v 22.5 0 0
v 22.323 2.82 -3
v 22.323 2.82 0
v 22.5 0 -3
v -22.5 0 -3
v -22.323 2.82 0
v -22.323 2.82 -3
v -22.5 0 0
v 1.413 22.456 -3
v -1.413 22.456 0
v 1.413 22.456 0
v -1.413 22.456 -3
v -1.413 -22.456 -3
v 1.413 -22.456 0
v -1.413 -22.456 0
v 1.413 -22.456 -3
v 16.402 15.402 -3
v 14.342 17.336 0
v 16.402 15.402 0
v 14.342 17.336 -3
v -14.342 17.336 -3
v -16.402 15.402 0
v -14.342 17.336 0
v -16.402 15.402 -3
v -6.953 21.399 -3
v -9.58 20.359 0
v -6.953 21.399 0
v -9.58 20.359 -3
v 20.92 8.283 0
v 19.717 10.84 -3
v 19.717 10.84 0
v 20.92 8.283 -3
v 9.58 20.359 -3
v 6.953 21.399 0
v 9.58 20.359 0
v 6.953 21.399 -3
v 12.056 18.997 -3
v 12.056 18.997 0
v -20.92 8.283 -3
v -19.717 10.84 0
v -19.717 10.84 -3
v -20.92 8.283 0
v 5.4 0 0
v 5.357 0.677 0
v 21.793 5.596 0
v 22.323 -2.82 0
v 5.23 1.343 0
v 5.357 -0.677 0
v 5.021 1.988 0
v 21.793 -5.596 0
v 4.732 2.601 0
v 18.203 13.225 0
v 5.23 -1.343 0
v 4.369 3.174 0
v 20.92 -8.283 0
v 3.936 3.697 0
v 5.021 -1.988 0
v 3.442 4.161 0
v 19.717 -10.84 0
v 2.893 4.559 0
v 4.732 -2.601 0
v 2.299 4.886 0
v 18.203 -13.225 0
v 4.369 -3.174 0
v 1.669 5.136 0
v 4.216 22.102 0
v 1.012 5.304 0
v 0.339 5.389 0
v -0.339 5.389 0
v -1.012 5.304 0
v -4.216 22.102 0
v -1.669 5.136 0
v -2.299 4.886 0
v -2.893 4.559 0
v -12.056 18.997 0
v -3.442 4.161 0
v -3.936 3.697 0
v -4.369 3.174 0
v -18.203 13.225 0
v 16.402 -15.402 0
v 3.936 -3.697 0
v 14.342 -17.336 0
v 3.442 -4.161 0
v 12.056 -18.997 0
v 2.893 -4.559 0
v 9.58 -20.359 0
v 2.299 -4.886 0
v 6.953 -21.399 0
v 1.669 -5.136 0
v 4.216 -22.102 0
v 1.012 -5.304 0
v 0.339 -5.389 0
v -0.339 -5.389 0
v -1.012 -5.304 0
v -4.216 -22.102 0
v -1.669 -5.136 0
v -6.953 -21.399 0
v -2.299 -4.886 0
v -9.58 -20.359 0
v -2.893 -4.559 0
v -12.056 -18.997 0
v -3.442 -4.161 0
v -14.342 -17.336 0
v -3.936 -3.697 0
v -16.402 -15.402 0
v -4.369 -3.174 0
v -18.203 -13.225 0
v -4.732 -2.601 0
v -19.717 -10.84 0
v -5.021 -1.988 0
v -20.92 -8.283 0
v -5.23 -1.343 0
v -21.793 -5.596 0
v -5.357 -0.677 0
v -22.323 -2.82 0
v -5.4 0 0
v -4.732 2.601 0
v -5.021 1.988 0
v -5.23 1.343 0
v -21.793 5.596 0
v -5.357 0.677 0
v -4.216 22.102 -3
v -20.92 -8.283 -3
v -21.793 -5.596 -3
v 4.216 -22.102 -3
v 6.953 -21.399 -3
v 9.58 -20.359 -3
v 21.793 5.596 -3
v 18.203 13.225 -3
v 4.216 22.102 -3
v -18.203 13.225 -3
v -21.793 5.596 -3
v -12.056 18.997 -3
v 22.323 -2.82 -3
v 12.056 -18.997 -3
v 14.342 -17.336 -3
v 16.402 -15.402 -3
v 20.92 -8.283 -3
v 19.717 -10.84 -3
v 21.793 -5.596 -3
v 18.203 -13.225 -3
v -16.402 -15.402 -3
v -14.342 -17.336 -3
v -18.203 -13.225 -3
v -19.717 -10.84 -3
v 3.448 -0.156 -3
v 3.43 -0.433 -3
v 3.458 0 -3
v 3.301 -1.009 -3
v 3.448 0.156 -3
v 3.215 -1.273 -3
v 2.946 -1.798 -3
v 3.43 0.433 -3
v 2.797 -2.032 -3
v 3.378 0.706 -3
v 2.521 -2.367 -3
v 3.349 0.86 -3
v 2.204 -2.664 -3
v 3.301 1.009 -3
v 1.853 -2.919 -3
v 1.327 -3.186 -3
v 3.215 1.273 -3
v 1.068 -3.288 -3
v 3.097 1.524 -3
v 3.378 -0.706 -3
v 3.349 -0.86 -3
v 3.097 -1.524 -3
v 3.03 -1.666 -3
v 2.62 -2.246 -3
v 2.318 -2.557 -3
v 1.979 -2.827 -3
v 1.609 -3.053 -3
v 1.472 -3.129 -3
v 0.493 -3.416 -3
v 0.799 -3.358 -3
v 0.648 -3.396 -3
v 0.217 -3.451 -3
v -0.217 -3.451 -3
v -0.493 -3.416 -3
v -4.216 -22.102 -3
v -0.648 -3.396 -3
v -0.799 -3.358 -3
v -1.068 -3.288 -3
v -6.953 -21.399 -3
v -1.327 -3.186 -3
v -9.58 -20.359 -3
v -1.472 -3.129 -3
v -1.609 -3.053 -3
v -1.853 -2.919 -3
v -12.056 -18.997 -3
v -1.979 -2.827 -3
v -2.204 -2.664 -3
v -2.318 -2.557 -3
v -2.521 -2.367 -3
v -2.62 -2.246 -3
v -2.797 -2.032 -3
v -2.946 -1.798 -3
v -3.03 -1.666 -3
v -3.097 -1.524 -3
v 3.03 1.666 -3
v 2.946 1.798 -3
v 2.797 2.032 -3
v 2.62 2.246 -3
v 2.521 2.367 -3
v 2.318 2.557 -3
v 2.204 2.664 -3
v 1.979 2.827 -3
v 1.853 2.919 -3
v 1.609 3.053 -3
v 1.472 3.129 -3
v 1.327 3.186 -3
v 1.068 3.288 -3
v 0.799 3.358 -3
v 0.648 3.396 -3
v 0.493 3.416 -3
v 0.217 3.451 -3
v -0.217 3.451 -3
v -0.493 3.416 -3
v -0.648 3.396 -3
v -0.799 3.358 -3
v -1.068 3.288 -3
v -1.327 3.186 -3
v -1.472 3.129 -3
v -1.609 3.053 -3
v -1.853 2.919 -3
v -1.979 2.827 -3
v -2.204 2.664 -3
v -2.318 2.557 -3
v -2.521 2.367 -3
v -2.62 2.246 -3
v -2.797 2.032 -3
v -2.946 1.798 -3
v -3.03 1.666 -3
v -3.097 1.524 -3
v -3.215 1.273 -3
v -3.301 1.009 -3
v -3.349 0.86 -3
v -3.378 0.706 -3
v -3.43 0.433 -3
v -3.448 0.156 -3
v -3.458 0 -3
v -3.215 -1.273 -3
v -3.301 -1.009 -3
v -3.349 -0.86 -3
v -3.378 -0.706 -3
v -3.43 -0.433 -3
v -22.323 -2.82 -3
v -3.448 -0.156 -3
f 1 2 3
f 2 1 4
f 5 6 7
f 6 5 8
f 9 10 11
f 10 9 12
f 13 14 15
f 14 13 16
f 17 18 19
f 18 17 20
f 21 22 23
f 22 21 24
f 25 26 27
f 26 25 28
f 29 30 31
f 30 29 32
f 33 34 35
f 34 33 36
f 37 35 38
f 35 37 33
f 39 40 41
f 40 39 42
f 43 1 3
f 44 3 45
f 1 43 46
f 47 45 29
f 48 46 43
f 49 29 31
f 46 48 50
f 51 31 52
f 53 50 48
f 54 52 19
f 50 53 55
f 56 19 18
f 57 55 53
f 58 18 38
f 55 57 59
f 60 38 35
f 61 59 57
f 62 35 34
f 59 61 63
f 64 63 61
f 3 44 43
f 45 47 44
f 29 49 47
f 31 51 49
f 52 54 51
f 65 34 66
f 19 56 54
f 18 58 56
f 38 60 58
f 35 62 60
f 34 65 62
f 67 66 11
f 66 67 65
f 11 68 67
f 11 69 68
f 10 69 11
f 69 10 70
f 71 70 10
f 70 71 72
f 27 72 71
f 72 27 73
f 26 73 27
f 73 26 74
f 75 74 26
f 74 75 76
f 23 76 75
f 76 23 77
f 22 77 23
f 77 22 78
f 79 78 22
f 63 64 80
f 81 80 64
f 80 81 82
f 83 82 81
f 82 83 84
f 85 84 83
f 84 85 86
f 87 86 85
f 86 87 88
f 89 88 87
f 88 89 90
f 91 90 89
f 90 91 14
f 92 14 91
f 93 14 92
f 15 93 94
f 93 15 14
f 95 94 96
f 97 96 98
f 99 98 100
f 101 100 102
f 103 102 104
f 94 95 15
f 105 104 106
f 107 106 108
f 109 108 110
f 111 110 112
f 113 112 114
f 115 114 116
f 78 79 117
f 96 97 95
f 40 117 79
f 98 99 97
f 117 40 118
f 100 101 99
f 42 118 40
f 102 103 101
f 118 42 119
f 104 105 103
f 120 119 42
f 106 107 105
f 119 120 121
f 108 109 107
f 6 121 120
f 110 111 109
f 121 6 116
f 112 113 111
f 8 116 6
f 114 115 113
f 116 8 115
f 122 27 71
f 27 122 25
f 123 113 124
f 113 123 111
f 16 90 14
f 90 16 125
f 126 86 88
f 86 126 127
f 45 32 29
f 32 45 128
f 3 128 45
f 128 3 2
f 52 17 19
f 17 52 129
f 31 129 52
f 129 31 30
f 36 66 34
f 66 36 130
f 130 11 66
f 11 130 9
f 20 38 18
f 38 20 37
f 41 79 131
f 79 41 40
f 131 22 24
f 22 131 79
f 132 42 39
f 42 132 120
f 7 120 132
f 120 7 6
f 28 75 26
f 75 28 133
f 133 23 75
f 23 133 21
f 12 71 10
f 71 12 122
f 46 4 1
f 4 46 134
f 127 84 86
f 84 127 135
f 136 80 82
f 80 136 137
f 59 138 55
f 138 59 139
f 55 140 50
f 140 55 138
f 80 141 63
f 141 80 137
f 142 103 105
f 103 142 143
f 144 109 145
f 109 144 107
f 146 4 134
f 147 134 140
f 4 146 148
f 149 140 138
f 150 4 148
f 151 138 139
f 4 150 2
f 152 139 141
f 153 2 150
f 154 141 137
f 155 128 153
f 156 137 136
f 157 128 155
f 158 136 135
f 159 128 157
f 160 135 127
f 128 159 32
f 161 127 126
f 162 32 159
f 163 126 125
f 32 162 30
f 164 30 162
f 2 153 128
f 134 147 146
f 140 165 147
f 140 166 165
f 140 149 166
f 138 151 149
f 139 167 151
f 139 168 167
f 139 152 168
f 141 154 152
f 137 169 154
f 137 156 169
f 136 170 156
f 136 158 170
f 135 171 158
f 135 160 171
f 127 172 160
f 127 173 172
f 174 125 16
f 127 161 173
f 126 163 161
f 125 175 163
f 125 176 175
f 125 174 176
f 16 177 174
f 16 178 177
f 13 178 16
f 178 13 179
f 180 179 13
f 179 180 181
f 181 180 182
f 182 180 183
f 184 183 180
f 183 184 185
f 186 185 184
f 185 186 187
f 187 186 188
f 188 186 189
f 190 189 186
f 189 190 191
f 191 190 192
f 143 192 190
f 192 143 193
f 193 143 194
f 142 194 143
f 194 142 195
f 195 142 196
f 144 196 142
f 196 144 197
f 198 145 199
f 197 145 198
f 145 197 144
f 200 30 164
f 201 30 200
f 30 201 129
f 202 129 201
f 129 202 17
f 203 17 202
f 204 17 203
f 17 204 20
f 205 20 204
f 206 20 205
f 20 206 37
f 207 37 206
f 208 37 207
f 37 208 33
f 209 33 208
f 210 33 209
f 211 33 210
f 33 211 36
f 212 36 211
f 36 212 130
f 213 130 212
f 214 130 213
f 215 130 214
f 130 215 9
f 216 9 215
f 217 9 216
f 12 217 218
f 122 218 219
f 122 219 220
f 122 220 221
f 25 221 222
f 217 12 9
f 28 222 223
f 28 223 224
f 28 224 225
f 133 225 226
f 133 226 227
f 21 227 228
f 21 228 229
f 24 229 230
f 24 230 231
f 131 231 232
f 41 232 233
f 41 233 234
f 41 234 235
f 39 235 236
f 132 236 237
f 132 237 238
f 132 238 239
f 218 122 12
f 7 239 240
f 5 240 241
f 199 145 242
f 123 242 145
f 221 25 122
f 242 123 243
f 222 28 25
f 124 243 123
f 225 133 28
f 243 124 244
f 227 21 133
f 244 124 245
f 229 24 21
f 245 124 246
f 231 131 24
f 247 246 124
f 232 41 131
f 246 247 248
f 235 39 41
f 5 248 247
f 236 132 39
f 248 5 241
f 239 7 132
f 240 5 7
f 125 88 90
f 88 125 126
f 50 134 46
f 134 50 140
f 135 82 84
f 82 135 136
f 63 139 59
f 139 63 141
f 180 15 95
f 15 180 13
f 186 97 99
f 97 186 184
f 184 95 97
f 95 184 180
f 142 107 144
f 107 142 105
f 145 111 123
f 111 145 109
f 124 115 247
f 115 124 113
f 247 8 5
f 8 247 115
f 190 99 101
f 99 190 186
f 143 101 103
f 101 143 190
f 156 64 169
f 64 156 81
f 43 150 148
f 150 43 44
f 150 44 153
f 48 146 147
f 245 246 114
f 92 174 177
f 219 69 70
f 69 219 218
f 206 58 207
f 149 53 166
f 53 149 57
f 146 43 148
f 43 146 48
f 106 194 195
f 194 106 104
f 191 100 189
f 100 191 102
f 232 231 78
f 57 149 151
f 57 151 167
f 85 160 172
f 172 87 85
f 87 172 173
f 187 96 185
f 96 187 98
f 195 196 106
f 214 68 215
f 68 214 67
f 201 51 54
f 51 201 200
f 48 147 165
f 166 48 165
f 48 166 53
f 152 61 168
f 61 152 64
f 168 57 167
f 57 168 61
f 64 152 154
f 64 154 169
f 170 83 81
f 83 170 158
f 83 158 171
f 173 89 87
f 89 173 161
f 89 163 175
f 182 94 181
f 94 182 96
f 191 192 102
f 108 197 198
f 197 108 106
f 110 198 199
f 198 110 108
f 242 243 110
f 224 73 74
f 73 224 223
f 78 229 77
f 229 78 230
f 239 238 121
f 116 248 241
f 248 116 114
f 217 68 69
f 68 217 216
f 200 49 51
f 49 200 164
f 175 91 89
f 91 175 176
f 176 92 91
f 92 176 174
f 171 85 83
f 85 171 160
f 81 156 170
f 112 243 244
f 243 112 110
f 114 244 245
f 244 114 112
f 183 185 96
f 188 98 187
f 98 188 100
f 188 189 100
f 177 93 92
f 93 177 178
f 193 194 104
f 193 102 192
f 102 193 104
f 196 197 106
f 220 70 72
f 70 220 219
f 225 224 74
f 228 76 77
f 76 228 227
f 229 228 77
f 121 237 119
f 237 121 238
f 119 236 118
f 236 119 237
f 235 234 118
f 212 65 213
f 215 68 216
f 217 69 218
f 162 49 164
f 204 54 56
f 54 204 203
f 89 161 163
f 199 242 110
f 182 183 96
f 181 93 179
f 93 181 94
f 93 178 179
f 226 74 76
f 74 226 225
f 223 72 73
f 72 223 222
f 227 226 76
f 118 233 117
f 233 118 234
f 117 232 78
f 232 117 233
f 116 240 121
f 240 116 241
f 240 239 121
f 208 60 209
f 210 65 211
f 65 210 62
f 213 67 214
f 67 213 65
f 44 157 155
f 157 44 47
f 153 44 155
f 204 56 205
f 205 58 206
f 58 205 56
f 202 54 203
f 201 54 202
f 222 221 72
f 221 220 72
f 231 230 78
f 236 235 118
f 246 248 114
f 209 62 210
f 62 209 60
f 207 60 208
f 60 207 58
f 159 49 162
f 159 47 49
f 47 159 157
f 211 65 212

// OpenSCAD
$fn = 50;

difference() {
	union() {
		translate(v = [0, 0, -3.0]) {
			cylinder(h = 3, r = 22.5);
		}
		#translate(v = [0, 0, -6.0]) {
			cylinder(h = 6, r = 2.875);
		}
	}
	union() {
		translate(v = [0, 0, 0]) {
			rotate(a = [0, 0, 0]) {
				difference() {
					union() {
						translate(v = [0, 0, -6.0]) {
							cylinder(h = 6, r = 2.6);
						}
						translate(v = [0, 0, -3.9]) {
							cylinder(h = 3.9, r1 = 2.875, r2 = 5.4);
						}
						translate(v = [0, 0, -6.0]) {
							cylinder(h = 6, r = 2.875);
						}
						translate(v = [0, 0, -6.0]) {
							cylinder(h = 6, r = 2.6);
						}
					}
					union();
				}
			}
		}
	}
}
